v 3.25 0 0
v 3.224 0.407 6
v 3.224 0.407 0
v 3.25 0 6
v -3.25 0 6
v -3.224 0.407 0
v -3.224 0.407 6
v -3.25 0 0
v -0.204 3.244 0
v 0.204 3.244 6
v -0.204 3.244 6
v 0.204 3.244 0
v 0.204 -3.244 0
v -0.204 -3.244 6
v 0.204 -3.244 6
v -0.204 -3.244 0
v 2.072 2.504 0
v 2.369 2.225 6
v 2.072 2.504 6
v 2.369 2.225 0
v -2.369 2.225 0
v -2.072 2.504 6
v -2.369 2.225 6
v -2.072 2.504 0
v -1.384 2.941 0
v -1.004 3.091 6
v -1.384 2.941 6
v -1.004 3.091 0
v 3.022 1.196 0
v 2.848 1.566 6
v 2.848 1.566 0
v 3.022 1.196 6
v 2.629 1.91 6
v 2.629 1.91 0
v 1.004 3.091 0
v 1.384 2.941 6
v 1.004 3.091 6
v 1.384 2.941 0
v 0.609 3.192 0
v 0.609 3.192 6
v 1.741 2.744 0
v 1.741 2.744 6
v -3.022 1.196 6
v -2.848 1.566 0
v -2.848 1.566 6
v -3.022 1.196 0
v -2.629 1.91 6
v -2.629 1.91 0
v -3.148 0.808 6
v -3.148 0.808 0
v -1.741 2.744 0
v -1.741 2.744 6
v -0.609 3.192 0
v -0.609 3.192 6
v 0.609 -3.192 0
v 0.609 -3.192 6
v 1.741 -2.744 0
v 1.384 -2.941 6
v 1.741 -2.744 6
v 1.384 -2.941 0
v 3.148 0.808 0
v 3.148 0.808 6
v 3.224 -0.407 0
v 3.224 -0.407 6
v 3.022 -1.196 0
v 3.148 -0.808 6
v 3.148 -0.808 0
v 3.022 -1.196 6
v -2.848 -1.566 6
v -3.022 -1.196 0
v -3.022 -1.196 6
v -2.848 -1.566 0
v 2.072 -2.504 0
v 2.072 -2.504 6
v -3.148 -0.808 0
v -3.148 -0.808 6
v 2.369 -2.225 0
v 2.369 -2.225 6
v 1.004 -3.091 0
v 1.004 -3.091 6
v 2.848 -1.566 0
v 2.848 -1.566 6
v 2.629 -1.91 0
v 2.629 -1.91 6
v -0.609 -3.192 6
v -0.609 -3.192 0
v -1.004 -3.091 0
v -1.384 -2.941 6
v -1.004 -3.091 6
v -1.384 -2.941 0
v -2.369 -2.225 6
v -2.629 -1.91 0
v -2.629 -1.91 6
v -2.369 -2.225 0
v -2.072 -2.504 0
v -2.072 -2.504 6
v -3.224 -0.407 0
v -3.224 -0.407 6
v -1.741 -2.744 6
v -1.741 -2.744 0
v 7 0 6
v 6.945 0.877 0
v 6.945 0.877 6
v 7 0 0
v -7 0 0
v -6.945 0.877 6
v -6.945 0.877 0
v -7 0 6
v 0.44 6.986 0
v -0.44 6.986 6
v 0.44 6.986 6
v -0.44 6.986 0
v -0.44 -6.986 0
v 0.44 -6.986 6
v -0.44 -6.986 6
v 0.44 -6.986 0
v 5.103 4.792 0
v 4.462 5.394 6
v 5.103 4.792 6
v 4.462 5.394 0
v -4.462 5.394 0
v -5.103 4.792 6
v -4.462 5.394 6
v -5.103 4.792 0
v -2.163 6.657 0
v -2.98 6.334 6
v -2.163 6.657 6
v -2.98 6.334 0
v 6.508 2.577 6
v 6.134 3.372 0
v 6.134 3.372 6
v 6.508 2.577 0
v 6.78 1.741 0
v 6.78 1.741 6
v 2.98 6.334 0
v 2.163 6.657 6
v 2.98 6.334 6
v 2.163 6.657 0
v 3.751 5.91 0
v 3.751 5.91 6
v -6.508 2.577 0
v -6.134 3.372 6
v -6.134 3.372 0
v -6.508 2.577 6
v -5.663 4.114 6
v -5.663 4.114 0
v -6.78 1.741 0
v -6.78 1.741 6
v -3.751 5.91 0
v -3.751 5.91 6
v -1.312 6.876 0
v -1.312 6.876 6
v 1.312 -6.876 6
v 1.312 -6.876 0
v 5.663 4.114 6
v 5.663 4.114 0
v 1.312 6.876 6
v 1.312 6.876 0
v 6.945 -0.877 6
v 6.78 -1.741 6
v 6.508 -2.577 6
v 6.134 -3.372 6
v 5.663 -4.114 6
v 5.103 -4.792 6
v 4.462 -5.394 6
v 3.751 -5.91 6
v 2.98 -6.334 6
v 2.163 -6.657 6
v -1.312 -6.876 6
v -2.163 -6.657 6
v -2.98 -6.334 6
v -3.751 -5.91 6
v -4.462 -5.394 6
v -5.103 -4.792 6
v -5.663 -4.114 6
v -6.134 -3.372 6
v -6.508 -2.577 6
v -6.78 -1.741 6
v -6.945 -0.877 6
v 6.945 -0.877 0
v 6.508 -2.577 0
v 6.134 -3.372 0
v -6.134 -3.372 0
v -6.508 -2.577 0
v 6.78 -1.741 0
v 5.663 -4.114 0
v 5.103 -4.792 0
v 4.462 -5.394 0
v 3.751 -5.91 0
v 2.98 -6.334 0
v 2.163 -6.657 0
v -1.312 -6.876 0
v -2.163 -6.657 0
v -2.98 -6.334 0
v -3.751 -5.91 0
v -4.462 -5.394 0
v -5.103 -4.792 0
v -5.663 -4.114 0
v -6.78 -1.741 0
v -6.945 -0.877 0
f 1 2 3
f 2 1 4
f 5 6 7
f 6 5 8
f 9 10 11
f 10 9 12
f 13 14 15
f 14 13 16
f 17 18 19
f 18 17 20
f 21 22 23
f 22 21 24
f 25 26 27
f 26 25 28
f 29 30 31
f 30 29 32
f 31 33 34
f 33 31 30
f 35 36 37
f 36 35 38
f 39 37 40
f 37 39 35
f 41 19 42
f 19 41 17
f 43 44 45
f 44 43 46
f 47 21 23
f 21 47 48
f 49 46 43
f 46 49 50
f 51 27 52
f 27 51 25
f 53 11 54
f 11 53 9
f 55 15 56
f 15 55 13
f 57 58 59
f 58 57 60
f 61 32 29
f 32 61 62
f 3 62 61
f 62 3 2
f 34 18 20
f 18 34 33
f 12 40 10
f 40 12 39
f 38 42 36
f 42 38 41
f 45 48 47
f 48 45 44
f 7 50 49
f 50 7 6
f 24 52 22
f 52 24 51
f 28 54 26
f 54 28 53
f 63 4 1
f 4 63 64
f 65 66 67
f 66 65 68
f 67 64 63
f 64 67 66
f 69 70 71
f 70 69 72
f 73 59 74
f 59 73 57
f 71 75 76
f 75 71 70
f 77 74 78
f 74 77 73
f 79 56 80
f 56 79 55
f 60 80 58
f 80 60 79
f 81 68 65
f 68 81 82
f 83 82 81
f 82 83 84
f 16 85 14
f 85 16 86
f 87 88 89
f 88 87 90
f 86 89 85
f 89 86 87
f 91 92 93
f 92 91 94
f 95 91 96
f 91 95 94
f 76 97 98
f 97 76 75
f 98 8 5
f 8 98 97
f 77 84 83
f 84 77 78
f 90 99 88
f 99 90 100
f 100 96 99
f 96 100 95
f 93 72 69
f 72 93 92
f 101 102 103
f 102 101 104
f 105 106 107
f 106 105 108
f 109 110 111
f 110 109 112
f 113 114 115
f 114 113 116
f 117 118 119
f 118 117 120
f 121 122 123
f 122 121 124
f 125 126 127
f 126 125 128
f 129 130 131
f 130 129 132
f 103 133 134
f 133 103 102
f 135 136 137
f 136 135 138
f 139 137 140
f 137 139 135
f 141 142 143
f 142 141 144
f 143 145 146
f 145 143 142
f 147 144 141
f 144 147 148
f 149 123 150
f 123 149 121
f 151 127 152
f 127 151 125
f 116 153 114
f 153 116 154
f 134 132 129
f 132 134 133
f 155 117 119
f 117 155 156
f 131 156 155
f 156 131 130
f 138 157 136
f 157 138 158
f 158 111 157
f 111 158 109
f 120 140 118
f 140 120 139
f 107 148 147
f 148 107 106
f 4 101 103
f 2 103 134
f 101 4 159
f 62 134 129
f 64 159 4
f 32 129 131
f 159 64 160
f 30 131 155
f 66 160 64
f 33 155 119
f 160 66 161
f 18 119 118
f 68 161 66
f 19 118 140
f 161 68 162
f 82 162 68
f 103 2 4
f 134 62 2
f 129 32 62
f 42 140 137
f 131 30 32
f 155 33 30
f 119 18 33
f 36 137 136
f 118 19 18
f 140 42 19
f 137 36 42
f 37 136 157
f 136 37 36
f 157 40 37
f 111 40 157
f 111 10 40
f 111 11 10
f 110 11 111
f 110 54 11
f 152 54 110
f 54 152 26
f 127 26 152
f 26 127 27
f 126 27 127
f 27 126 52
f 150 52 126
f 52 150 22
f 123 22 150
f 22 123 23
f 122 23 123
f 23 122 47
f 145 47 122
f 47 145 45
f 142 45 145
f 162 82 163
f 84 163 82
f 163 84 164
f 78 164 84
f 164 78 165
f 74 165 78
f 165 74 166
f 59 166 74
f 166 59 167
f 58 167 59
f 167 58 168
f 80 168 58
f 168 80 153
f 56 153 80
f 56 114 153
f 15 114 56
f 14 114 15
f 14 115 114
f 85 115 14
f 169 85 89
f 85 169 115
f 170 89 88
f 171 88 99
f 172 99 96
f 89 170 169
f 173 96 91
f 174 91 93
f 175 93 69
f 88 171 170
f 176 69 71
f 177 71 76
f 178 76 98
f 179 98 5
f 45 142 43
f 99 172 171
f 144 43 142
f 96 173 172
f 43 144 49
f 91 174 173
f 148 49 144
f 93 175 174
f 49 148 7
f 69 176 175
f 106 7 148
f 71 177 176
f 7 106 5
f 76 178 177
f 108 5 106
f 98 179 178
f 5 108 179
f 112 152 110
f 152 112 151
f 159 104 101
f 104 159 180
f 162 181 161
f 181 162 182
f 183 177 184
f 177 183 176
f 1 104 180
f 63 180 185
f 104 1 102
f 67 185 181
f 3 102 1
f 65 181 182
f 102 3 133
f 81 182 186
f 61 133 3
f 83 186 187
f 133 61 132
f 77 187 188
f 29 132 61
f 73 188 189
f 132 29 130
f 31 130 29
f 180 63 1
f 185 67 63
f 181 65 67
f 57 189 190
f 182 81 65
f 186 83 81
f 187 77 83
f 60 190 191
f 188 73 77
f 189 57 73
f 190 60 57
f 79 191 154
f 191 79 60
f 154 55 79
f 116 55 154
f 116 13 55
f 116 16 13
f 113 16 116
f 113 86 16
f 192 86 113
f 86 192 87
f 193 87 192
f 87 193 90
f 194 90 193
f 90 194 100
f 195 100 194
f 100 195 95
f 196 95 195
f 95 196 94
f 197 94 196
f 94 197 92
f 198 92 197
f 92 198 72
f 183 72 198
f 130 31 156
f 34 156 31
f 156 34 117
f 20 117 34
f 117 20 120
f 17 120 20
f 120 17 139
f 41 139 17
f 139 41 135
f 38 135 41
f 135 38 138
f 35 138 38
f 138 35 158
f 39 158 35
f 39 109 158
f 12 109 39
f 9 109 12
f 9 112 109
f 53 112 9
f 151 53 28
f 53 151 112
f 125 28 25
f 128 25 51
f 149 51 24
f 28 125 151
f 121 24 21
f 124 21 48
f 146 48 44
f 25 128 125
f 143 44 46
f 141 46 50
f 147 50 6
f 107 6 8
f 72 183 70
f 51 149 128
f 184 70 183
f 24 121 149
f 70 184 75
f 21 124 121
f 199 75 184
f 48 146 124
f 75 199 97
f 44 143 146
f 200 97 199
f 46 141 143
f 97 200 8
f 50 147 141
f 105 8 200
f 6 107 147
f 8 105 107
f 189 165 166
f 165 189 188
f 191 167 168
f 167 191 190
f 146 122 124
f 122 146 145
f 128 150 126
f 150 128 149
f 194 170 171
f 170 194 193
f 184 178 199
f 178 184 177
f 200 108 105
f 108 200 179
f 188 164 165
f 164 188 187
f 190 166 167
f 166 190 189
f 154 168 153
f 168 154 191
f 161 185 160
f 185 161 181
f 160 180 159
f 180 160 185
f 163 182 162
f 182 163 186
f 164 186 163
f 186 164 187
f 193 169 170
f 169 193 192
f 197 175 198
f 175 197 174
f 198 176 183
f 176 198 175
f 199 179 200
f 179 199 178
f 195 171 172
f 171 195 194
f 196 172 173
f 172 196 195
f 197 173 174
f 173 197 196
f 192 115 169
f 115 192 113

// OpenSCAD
$fn = 50;


difference() {
	union() {
		translate(v = [0, 0, 0]) {
			rotate(a = [0, 0, 0]) {
				cylinder(h = 6, r = 7.0000000000);
			}
		}
	}
	union() {
		translate(v = [0.0000000000, 0.0000000000, 0]) {
			rotate(a = [0, 0, 0]) {
				translate(v = [0, 0, -50]) {
					rotate(a = [0, 0, 0]) {
						cylinder(h = 100, r = 3.2500000000);
					}
				}
			}
		}
	}
}
